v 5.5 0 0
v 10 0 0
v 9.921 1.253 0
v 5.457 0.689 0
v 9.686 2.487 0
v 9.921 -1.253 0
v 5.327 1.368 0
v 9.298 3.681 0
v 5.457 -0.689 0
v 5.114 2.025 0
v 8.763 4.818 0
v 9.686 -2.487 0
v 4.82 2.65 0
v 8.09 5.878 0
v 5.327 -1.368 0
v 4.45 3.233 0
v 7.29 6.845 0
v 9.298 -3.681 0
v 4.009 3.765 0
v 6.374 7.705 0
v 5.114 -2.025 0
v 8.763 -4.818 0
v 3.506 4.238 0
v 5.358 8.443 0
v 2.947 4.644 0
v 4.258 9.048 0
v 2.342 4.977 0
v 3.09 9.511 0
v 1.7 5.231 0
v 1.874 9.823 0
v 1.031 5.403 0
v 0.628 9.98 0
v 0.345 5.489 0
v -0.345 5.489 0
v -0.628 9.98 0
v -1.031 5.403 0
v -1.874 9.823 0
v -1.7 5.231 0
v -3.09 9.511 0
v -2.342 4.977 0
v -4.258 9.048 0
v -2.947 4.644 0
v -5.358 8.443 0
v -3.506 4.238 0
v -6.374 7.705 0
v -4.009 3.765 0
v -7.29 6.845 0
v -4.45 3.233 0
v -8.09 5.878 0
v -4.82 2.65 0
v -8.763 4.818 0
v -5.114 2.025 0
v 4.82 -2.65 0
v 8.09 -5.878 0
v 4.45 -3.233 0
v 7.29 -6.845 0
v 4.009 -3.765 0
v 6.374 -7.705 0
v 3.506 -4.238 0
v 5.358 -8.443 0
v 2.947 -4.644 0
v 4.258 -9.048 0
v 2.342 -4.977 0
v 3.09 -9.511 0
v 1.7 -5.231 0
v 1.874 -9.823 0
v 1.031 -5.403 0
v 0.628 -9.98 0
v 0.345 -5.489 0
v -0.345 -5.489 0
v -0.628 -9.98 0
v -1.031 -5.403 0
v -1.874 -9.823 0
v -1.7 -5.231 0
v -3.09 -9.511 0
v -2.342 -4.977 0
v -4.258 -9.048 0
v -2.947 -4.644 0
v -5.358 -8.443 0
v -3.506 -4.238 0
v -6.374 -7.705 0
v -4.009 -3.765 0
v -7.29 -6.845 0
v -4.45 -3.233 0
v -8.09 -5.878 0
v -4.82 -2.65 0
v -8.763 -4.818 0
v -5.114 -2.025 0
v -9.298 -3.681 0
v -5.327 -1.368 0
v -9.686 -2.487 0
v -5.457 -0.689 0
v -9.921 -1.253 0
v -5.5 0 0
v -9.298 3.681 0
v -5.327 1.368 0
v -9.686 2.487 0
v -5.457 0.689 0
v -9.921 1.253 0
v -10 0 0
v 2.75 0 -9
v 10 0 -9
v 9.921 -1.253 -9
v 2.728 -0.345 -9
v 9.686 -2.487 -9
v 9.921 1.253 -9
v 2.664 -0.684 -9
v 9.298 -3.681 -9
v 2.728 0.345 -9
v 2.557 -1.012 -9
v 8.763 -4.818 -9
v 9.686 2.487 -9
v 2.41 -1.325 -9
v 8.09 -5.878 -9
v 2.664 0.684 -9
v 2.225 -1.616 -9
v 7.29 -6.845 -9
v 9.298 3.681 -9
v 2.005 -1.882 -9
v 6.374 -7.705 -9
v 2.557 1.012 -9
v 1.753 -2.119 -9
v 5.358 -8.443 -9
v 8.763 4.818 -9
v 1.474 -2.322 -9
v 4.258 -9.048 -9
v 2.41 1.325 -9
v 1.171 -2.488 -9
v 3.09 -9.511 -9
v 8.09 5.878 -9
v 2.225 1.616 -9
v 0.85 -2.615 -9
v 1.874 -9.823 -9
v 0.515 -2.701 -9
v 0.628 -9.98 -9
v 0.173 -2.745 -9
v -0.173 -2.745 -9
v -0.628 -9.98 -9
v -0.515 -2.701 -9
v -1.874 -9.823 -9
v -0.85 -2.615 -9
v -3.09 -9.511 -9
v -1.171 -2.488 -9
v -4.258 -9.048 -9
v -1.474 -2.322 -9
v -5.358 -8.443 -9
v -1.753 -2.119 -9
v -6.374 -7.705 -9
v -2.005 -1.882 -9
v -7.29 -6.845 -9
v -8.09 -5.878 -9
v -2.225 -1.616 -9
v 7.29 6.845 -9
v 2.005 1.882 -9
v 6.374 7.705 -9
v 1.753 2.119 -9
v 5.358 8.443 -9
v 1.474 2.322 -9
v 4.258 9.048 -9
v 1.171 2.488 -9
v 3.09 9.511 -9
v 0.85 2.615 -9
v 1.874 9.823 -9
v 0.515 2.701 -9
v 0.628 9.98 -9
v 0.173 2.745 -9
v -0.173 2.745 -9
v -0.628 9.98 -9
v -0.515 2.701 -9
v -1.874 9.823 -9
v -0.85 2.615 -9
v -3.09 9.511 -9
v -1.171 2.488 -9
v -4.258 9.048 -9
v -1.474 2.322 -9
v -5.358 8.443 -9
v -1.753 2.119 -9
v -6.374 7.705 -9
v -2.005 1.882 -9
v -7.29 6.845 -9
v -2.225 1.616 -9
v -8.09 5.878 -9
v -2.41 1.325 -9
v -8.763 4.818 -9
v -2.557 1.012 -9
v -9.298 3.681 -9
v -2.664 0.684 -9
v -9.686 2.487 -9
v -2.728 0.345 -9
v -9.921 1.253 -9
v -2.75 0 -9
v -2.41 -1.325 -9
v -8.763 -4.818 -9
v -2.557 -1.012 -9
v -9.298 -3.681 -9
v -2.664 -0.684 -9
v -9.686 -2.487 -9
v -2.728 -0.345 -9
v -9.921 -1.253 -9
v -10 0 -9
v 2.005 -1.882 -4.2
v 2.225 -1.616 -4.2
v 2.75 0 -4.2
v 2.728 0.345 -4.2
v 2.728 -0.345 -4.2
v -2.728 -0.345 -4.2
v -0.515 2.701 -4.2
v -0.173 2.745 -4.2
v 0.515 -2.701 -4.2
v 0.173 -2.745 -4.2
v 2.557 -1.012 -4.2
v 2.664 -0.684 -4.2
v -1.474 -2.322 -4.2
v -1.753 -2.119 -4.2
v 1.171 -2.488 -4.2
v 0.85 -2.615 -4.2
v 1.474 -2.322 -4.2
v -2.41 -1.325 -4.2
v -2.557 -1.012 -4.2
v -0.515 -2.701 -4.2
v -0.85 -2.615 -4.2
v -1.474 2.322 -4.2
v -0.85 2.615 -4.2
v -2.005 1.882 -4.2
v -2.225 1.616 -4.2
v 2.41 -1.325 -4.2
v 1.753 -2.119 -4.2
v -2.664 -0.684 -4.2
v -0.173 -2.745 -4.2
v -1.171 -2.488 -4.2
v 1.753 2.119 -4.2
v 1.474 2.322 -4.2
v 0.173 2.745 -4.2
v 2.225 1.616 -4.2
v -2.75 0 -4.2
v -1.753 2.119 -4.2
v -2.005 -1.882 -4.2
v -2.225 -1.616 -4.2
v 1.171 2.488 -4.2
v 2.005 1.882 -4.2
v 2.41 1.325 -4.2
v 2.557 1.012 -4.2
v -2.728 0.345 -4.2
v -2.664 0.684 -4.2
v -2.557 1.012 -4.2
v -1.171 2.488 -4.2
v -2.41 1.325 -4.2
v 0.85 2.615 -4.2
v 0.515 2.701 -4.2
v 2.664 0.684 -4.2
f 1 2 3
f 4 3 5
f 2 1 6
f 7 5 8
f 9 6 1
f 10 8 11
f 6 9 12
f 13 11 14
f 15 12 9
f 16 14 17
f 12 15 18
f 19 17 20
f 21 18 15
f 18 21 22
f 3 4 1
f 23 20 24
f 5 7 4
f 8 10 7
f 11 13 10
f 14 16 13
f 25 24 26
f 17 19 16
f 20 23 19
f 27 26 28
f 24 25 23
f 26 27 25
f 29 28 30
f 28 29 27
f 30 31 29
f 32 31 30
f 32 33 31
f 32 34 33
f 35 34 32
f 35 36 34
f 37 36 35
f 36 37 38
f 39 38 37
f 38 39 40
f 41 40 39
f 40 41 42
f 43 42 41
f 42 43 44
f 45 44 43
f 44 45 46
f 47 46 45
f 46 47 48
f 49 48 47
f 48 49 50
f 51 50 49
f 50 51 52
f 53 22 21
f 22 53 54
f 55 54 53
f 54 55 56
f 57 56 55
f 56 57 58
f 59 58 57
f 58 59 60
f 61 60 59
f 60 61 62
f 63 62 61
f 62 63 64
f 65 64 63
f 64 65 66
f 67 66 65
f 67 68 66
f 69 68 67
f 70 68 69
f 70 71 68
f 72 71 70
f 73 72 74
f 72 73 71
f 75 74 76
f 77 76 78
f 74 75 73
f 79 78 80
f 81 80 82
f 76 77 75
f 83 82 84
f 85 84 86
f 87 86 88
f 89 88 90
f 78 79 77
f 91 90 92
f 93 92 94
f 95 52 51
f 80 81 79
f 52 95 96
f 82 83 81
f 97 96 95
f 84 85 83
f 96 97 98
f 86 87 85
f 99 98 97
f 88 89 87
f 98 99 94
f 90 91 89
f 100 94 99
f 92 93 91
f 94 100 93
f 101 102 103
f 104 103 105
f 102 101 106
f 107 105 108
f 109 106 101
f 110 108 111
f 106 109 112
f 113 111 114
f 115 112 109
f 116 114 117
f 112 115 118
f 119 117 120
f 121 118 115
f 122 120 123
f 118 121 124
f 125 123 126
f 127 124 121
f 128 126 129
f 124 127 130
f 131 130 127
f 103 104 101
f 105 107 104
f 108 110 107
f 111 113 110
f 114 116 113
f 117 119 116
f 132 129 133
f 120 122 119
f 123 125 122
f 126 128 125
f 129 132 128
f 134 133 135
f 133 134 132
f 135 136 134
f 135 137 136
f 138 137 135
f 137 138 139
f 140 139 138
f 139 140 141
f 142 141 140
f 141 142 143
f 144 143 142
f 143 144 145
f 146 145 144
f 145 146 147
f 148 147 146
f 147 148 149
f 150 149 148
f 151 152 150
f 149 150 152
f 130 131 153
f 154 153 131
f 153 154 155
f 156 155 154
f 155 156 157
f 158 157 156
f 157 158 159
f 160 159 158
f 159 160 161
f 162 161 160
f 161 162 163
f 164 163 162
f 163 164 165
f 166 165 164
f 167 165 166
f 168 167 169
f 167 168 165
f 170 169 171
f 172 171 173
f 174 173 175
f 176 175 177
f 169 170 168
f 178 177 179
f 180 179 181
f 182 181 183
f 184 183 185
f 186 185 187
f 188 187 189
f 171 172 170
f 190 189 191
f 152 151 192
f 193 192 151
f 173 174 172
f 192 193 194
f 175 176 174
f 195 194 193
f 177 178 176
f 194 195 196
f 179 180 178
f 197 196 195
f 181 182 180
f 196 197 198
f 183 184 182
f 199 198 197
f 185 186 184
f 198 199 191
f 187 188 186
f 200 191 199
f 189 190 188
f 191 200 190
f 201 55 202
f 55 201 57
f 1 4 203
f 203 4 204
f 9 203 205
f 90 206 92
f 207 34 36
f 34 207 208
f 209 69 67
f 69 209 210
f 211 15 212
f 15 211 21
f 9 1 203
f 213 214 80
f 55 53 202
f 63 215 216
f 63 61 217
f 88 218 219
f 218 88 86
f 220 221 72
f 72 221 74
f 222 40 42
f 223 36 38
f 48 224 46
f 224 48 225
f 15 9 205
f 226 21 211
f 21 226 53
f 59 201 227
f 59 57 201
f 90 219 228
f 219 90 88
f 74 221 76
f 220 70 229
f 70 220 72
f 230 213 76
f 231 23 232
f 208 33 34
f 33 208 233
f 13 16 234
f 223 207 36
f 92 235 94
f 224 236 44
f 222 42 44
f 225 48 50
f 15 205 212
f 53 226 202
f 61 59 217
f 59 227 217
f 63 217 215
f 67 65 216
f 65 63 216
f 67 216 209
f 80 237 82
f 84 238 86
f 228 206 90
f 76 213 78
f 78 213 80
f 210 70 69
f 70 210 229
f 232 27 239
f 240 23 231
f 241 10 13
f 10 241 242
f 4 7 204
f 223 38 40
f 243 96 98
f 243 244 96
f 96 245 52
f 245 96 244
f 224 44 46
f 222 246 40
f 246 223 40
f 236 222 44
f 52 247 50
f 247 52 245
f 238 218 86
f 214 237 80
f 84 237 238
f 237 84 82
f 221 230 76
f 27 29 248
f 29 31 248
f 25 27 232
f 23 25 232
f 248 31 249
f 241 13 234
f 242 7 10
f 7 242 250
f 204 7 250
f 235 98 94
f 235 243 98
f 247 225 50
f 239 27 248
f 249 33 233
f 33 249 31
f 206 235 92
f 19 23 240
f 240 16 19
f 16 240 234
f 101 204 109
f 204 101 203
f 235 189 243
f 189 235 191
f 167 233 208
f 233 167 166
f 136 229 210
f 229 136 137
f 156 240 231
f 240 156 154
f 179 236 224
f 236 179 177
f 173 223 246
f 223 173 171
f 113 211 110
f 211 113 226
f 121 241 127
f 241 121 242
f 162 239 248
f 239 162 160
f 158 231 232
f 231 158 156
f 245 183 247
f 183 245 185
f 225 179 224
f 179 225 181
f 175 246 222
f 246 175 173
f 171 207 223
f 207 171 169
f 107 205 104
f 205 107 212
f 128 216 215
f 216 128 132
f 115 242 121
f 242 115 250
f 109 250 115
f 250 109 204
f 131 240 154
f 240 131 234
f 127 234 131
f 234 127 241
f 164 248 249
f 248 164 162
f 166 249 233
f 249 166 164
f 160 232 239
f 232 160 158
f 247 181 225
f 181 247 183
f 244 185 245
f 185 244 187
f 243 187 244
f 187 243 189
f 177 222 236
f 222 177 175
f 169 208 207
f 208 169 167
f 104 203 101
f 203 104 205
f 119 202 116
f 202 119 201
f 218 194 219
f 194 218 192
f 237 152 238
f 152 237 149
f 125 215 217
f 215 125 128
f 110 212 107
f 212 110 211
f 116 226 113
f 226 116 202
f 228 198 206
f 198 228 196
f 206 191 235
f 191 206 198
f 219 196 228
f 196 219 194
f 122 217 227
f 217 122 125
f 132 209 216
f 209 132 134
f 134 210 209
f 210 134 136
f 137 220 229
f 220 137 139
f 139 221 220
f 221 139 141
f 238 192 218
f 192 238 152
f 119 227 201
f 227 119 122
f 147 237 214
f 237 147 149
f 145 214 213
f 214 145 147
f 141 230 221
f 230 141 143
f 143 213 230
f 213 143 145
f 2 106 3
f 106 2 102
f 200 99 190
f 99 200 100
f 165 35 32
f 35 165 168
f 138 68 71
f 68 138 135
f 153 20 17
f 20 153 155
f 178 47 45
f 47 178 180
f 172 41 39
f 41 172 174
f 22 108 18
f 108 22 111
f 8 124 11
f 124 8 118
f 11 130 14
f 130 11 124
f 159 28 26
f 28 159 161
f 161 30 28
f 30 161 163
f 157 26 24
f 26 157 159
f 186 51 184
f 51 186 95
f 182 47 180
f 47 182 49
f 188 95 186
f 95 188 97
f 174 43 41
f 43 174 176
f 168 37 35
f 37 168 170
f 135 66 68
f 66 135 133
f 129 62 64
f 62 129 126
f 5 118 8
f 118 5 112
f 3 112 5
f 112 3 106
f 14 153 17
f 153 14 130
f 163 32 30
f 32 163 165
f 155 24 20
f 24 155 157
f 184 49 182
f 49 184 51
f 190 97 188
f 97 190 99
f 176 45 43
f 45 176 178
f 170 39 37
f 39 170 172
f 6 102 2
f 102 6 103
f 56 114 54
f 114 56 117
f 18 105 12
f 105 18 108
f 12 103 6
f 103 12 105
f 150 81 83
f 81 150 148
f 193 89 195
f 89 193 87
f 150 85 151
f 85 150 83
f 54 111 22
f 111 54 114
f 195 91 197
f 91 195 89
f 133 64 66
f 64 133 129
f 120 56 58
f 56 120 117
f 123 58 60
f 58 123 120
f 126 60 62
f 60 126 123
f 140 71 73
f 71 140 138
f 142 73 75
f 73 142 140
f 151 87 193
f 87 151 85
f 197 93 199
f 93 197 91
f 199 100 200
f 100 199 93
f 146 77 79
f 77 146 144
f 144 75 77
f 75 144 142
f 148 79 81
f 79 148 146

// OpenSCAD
$fn = 50;


difference() {
	union() {
		translate(v = [0, 0, -9.0000000000]) {
			cylinder(h = 9, r = 10.0000000000);
		}
	}
	union() {
		translate(v = [0, 0, 0]) {
			rotate(a = [0, 0, 0]) {
				difference() {
					union() {
						#translate(v = [0, 0, -9.0000000000]) {
							cylinder(h = 9, r = 2.2500000000);
						}
						#translate(v = [0, 0, -4.2000000000]) {
							cylinder(h = 4.2000000000, r1 = 2.7500000000, r2 = 5.5000000000);
						}
						#translate(v = [0, 0, -9.0000000000]) {
							cylinder(h = 9, r = 2.7500000000);
						}
						#translate(v = [0, 0, -9.0000000000]) {
							cylinder(h = 9, r = 2.2500000000);
						}
					}
					union();
				}
			}
		}
	}
}
